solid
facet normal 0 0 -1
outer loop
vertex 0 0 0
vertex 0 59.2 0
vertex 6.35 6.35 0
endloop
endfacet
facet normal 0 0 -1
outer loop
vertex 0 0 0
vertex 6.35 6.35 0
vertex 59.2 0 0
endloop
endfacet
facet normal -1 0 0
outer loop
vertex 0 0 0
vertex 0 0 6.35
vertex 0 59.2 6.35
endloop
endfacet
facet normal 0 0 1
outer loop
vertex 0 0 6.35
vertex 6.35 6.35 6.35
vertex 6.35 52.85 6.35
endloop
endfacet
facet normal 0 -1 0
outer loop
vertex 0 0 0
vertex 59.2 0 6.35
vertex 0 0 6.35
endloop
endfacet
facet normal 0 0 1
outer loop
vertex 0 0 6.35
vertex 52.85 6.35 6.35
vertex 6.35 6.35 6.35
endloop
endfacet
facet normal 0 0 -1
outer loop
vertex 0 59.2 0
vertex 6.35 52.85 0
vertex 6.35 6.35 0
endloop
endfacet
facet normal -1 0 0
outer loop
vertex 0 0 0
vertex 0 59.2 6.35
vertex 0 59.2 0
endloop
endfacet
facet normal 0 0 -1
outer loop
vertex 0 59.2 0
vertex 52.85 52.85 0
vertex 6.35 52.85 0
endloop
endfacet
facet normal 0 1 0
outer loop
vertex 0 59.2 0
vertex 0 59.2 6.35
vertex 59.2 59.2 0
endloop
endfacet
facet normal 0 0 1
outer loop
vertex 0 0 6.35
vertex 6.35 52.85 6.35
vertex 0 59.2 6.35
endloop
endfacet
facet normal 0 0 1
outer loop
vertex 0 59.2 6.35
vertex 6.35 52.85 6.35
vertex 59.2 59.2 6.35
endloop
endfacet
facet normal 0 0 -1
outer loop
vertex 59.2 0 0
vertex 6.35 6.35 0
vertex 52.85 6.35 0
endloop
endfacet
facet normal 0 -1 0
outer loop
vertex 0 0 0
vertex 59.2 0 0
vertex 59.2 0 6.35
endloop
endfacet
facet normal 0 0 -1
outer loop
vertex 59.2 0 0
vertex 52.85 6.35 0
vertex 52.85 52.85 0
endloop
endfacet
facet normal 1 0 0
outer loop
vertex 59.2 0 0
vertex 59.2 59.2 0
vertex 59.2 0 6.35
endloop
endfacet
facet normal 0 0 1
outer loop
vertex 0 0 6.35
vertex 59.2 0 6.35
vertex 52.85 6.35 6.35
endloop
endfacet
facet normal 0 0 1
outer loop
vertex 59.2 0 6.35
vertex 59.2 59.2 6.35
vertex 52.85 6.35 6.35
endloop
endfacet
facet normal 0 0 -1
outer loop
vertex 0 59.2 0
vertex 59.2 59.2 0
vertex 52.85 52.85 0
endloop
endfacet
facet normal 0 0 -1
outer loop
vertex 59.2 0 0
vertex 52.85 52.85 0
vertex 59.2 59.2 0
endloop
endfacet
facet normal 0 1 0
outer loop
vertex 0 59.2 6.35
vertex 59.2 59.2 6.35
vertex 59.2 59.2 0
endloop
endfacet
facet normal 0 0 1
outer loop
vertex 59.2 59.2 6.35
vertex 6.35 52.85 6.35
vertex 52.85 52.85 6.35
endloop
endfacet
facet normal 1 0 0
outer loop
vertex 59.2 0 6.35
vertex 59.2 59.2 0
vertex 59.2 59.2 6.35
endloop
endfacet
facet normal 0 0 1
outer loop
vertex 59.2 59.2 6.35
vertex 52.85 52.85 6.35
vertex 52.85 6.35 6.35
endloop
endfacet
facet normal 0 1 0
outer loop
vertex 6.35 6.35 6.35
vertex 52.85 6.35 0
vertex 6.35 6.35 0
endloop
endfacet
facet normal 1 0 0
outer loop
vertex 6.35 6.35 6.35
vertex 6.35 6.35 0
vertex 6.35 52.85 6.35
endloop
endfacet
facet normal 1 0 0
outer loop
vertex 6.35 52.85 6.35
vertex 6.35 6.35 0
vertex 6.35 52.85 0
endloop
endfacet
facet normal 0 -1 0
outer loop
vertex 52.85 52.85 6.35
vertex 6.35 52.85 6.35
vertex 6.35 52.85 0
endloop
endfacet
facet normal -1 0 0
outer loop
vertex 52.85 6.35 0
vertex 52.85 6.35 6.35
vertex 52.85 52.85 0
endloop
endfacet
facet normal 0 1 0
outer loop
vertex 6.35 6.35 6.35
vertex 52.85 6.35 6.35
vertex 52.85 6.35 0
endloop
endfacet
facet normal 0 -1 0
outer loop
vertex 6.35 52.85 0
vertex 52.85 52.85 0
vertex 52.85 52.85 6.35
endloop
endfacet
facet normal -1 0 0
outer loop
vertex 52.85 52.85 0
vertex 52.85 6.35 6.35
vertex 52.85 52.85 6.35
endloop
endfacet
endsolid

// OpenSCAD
// Custom Isolated Wire Retention Ring
// For ULN2003 Enclosure (2.5 inches square box with 2mm walls)

$fn = 40; // Circle smoothness

// --- FIXED PARAMETERS FROM EXISTING BOX ---
box_size = 63.5;       // 2.5 inches square base
wall_thick = 2.0;      // 2mm outer box walls

// --- RETENTION RING DIMENSIONS ---
ring_height = 6.35;    // 1/4 inch high
ring_width = 6.35;     // 1/4 inch wall thickness
ring_clearance = 0.15; // Clearance tolerance to slide down smoothly inside your printed box

// --- RENDER EXECUTION ---
wire_retention_ring();

// --- MODULE ---
module wire_retention_ring() {
    // Computes the exact size needed to slide inside the printed box's inner footprint
    outer_ring_size = box_size - (wall_thick * 2) - (ring_clearance * 2);
    inner_ring_size = outer_ring_size - (ring_width * 2);
    
    difference() {
        // Outer ring solid boundary
        cube([outer_ring_size, outer_ring_size, ring_height]);
        
        // Center cutout to leave a precise 1/4" boundary profile
        translate([ring_width, ring_width, -0.1])
            cube([inner_ring_size, inner_ring_size, ring_height + 0.2]);
    }
}
